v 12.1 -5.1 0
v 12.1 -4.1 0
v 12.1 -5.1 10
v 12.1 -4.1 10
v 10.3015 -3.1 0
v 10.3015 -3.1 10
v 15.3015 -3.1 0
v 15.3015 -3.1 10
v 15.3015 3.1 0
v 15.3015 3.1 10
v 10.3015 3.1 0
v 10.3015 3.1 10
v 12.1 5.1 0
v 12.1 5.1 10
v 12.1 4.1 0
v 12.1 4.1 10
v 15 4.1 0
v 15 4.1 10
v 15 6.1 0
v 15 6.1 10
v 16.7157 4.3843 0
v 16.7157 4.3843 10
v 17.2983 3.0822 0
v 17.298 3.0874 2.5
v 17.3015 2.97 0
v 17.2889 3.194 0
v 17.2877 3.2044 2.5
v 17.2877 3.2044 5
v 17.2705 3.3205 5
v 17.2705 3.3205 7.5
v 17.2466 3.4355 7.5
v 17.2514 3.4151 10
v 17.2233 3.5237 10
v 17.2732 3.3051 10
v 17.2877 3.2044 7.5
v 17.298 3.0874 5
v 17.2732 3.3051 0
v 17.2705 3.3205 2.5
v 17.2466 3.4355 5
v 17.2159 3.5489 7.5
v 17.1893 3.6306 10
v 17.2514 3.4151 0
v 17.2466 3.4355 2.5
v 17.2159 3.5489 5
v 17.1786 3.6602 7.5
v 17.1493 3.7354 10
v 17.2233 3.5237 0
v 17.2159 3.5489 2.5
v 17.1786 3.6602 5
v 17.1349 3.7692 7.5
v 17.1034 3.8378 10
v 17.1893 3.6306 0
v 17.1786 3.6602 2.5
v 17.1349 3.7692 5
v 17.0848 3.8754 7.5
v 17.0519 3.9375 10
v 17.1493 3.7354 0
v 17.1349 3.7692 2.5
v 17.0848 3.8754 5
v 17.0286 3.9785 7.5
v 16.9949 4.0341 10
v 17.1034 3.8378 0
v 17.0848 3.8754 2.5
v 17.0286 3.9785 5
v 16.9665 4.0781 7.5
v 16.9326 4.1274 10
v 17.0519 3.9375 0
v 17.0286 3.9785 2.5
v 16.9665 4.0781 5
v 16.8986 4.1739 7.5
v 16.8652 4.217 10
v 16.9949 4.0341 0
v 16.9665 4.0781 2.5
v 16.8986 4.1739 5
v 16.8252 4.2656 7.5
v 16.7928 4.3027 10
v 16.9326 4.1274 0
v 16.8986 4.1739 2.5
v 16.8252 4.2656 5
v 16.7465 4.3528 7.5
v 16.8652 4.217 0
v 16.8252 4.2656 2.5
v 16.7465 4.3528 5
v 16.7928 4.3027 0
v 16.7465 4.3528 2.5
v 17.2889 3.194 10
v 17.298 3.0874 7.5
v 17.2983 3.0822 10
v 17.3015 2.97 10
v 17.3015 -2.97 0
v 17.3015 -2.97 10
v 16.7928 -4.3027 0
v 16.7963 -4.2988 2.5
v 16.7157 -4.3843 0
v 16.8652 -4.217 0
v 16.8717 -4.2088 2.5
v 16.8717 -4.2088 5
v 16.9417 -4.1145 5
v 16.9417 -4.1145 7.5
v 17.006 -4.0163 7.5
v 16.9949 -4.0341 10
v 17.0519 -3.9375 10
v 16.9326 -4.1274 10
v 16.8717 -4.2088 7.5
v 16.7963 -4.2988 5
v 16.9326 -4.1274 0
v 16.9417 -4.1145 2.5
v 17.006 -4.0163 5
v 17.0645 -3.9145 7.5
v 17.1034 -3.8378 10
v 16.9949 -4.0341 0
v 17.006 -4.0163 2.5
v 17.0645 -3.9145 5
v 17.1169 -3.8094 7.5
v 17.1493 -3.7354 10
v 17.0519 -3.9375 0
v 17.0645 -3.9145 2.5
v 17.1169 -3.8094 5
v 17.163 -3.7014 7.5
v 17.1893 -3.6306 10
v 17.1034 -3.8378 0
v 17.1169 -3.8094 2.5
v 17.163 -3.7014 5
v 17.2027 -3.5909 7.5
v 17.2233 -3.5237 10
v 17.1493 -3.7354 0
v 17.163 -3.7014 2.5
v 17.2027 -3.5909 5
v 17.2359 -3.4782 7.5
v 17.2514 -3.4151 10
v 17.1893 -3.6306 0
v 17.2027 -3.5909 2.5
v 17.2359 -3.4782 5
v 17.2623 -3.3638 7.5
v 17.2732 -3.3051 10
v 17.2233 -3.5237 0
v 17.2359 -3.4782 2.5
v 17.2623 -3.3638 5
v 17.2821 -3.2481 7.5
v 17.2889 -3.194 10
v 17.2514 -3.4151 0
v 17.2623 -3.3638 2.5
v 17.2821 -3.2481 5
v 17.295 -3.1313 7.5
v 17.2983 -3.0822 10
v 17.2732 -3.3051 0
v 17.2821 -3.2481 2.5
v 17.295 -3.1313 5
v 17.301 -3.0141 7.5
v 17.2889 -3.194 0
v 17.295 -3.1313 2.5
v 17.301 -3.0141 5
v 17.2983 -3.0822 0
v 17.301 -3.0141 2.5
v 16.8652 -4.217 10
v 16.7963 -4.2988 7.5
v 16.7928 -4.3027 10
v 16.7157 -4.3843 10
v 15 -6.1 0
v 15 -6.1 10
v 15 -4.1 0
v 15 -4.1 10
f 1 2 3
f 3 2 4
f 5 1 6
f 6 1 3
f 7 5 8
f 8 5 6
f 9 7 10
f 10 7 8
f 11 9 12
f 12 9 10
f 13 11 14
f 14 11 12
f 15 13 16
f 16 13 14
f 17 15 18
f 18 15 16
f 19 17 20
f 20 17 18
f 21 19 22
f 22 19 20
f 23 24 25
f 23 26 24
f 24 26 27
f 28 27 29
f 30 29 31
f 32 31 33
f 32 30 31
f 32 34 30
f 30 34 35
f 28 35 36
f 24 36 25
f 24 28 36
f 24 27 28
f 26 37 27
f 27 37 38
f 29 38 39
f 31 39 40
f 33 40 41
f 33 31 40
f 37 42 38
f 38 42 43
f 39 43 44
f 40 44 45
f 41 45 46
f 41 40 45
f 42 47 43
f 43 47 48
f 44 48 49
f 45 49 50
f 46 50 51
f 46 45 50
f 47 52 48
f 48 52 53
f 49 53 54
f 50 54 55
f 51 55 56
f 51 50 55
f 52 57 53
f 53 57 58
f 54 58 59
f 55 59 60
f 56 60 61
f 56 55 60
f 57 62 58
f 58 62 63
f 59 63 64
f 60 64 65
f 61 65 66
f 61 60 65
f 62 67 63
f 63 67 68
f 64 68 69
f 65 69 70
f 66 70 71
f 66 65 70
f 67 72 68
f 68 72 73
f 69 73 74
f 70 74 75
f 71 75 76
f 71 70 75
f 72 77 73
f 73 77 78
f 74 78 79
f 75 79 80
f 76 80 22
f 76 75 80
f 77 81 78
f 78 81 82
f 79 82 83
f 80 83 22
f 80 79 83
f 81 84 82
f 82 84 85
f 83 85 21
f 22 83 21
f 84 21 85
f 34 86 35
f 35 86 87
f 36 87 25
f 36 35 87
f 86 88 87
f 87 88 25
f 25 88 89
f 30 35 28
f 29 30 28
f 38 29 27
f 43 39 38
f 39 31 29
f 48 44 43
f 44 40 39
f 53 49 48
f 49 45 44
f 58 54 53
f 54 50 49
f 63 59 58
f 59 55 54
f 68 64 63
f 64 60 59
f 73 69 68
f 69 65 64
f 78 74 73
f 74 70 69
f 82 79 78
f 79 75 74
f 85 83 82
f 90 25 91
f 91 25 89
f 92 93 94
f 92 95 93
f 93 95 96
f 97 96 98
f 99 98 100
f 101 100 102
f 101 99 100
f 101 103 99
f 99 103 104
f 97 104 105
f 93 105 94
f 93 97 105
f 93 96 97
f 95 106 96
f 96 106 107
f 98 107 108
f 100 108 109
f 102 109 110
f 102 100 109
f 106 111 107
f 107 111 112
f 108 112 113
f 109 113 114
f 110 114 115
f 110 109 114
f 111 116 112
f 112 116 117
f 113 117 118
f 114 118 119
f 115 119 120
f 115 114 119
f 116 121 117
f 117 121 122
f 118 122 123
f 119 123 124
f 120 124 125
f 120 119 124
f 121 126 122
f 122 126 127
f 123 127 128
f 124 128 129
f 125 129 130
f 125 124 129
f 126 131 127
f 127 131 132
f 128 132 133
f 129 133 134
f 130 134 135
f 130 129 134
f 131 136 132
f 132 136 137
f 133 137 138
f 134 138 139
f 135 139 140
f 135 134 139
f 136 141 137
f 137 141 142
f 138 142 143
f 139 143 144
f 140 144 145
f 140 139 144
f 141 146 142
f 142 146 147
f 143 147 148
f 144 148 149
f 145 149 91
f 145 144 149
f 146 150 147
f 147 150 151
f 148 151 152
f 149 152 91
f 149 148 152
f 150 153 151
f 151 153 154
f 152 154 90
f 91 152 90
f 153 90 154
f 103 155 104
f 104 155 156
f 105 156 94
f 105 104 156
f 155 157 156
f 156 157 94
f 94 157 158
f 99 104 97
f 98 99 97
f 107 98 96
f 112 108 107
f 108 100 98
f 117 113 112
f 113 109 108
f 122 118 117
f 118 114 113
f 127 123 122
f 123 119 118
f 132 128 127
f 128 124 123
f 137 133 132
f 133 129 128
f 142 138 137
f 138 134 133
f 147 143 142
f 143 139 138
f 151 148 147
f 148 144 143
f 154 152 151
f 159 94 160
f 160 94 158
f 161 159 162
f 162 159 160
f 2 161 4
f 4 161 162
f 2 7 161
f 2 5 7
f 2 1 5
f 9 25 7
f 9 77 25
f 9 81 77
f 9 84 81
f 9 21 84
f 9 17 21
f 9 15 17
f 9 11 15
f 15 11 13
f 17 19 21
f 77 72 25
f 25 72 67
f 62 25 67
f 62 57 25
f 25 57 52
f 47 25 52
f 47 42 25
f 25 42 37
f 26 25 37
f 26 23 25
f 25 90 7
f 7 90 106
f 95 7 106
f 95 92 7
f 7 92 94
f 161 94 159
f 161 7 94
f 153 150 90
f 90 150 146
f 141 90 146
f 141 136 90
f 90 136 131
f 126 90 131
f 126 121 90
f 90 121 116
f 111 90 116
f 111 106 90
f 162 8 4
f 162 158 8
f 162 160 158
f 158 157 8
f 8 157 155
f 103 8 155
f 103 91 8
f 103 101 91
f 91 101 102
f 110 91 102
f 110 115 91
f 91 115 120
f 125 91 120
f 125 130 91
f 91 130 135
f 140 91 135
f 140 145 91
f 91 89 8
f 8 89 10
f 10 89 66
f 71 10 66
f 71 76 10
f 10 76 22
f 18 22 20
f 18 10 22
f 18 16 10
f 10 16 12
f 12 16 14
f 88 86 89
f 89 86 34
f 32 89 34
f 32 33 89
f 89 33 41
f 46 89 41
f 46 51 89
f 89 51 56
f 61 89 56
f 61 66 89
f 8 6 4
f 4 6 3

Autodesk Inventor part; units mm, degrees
ref_plane "YZ Plane" through (0, 0, 0) normal (1, 0, 0) x (0, 1, 0)
ref_plane "XZ Plane" through (0, 0, 0) normal (0, 1, 0) x (-1, 0, 0)
ref_plane "XY Plane" through (0, 0, 0) normal (0, 0, 1) x (1, 0, 0)
sketch "Sketch1" plane through (0, 0, 0) normal (0, 0, 1) x (1, 0, 0)
  line L0 (15, -4.1) -> (12.1, -4.1)
  line L1 (12.1, 4.1) -> (15, 4.1)
  line L2 (12.1, 4.1) -> (12.1, 5.1)
  line L3 (10.3015, 3.1) -> (12.1, 5.1)
  line L4 (10.3015, -3.1) -> (12.1, -5.1)
  line L5 (12.1, -5.1) -> (12.1, -4.1)
  line L6 (15.3015, 3.1) -> (15.3015, -3.1)
  line L7 (15, 4.1) -> (15, 6.1)
  line L8 (15, 6.1) -> (16.7157, 4.3843)
  line L9 (15, -4.1) -> (15, -6.1)
  line L10 (15, -6.1) -> (16.7157, -4.3843)
  line L11 (17.3015, 2.97) -> (17.3015, -2.97)
  line L12 (15.3015, 3.1) -> (10.3015, 3.1)
  line L13 (15.3015, -3.1) -> (10.3015, -3.1)
  arc A0 (17.3015, 2.97) -> (16.7157, 4.3843) centre (15.3015, 2.97) ccw
  arc A1 (16.7157, -4.3843) -> (17.3015, -2.97) centre (15.3015, -2.97) ccw
  point P0 (0, 0)
  point P1 (17.3015, 3.7985)
  point P2 (17.3015, -3.7985)
  dimension "d0" = 1
  dimension "d2" = 45
  dimension "d3" = 45
  dimension "d4" = 2.3015
  dimension "d5" = 2.3015
  dimension "d6" = 2
  dimension "d7" = 2
  dimension "d8" = 1
  dimension "d9" = 1
  dimension "d10" = 5
  dimension "d11" = 5
  dimension "d12" = 1
  dimension "d13" = 2
  dimension "d16" = 2.9
  dimension "d17" = 2.9
  dimension "d18" = 2
extrude "Extrusion1" add sketch "Sketch1" along normal blind 10
equation "\"d5\" = d4"
equation "\"d7\" = d6"
equation "\"d9\" = d8"
equation "\"d11\" = d10"
equation "\"d12\" = d0"
equation "\"d17\" = d16"
properties part number "clema cablu profil"
